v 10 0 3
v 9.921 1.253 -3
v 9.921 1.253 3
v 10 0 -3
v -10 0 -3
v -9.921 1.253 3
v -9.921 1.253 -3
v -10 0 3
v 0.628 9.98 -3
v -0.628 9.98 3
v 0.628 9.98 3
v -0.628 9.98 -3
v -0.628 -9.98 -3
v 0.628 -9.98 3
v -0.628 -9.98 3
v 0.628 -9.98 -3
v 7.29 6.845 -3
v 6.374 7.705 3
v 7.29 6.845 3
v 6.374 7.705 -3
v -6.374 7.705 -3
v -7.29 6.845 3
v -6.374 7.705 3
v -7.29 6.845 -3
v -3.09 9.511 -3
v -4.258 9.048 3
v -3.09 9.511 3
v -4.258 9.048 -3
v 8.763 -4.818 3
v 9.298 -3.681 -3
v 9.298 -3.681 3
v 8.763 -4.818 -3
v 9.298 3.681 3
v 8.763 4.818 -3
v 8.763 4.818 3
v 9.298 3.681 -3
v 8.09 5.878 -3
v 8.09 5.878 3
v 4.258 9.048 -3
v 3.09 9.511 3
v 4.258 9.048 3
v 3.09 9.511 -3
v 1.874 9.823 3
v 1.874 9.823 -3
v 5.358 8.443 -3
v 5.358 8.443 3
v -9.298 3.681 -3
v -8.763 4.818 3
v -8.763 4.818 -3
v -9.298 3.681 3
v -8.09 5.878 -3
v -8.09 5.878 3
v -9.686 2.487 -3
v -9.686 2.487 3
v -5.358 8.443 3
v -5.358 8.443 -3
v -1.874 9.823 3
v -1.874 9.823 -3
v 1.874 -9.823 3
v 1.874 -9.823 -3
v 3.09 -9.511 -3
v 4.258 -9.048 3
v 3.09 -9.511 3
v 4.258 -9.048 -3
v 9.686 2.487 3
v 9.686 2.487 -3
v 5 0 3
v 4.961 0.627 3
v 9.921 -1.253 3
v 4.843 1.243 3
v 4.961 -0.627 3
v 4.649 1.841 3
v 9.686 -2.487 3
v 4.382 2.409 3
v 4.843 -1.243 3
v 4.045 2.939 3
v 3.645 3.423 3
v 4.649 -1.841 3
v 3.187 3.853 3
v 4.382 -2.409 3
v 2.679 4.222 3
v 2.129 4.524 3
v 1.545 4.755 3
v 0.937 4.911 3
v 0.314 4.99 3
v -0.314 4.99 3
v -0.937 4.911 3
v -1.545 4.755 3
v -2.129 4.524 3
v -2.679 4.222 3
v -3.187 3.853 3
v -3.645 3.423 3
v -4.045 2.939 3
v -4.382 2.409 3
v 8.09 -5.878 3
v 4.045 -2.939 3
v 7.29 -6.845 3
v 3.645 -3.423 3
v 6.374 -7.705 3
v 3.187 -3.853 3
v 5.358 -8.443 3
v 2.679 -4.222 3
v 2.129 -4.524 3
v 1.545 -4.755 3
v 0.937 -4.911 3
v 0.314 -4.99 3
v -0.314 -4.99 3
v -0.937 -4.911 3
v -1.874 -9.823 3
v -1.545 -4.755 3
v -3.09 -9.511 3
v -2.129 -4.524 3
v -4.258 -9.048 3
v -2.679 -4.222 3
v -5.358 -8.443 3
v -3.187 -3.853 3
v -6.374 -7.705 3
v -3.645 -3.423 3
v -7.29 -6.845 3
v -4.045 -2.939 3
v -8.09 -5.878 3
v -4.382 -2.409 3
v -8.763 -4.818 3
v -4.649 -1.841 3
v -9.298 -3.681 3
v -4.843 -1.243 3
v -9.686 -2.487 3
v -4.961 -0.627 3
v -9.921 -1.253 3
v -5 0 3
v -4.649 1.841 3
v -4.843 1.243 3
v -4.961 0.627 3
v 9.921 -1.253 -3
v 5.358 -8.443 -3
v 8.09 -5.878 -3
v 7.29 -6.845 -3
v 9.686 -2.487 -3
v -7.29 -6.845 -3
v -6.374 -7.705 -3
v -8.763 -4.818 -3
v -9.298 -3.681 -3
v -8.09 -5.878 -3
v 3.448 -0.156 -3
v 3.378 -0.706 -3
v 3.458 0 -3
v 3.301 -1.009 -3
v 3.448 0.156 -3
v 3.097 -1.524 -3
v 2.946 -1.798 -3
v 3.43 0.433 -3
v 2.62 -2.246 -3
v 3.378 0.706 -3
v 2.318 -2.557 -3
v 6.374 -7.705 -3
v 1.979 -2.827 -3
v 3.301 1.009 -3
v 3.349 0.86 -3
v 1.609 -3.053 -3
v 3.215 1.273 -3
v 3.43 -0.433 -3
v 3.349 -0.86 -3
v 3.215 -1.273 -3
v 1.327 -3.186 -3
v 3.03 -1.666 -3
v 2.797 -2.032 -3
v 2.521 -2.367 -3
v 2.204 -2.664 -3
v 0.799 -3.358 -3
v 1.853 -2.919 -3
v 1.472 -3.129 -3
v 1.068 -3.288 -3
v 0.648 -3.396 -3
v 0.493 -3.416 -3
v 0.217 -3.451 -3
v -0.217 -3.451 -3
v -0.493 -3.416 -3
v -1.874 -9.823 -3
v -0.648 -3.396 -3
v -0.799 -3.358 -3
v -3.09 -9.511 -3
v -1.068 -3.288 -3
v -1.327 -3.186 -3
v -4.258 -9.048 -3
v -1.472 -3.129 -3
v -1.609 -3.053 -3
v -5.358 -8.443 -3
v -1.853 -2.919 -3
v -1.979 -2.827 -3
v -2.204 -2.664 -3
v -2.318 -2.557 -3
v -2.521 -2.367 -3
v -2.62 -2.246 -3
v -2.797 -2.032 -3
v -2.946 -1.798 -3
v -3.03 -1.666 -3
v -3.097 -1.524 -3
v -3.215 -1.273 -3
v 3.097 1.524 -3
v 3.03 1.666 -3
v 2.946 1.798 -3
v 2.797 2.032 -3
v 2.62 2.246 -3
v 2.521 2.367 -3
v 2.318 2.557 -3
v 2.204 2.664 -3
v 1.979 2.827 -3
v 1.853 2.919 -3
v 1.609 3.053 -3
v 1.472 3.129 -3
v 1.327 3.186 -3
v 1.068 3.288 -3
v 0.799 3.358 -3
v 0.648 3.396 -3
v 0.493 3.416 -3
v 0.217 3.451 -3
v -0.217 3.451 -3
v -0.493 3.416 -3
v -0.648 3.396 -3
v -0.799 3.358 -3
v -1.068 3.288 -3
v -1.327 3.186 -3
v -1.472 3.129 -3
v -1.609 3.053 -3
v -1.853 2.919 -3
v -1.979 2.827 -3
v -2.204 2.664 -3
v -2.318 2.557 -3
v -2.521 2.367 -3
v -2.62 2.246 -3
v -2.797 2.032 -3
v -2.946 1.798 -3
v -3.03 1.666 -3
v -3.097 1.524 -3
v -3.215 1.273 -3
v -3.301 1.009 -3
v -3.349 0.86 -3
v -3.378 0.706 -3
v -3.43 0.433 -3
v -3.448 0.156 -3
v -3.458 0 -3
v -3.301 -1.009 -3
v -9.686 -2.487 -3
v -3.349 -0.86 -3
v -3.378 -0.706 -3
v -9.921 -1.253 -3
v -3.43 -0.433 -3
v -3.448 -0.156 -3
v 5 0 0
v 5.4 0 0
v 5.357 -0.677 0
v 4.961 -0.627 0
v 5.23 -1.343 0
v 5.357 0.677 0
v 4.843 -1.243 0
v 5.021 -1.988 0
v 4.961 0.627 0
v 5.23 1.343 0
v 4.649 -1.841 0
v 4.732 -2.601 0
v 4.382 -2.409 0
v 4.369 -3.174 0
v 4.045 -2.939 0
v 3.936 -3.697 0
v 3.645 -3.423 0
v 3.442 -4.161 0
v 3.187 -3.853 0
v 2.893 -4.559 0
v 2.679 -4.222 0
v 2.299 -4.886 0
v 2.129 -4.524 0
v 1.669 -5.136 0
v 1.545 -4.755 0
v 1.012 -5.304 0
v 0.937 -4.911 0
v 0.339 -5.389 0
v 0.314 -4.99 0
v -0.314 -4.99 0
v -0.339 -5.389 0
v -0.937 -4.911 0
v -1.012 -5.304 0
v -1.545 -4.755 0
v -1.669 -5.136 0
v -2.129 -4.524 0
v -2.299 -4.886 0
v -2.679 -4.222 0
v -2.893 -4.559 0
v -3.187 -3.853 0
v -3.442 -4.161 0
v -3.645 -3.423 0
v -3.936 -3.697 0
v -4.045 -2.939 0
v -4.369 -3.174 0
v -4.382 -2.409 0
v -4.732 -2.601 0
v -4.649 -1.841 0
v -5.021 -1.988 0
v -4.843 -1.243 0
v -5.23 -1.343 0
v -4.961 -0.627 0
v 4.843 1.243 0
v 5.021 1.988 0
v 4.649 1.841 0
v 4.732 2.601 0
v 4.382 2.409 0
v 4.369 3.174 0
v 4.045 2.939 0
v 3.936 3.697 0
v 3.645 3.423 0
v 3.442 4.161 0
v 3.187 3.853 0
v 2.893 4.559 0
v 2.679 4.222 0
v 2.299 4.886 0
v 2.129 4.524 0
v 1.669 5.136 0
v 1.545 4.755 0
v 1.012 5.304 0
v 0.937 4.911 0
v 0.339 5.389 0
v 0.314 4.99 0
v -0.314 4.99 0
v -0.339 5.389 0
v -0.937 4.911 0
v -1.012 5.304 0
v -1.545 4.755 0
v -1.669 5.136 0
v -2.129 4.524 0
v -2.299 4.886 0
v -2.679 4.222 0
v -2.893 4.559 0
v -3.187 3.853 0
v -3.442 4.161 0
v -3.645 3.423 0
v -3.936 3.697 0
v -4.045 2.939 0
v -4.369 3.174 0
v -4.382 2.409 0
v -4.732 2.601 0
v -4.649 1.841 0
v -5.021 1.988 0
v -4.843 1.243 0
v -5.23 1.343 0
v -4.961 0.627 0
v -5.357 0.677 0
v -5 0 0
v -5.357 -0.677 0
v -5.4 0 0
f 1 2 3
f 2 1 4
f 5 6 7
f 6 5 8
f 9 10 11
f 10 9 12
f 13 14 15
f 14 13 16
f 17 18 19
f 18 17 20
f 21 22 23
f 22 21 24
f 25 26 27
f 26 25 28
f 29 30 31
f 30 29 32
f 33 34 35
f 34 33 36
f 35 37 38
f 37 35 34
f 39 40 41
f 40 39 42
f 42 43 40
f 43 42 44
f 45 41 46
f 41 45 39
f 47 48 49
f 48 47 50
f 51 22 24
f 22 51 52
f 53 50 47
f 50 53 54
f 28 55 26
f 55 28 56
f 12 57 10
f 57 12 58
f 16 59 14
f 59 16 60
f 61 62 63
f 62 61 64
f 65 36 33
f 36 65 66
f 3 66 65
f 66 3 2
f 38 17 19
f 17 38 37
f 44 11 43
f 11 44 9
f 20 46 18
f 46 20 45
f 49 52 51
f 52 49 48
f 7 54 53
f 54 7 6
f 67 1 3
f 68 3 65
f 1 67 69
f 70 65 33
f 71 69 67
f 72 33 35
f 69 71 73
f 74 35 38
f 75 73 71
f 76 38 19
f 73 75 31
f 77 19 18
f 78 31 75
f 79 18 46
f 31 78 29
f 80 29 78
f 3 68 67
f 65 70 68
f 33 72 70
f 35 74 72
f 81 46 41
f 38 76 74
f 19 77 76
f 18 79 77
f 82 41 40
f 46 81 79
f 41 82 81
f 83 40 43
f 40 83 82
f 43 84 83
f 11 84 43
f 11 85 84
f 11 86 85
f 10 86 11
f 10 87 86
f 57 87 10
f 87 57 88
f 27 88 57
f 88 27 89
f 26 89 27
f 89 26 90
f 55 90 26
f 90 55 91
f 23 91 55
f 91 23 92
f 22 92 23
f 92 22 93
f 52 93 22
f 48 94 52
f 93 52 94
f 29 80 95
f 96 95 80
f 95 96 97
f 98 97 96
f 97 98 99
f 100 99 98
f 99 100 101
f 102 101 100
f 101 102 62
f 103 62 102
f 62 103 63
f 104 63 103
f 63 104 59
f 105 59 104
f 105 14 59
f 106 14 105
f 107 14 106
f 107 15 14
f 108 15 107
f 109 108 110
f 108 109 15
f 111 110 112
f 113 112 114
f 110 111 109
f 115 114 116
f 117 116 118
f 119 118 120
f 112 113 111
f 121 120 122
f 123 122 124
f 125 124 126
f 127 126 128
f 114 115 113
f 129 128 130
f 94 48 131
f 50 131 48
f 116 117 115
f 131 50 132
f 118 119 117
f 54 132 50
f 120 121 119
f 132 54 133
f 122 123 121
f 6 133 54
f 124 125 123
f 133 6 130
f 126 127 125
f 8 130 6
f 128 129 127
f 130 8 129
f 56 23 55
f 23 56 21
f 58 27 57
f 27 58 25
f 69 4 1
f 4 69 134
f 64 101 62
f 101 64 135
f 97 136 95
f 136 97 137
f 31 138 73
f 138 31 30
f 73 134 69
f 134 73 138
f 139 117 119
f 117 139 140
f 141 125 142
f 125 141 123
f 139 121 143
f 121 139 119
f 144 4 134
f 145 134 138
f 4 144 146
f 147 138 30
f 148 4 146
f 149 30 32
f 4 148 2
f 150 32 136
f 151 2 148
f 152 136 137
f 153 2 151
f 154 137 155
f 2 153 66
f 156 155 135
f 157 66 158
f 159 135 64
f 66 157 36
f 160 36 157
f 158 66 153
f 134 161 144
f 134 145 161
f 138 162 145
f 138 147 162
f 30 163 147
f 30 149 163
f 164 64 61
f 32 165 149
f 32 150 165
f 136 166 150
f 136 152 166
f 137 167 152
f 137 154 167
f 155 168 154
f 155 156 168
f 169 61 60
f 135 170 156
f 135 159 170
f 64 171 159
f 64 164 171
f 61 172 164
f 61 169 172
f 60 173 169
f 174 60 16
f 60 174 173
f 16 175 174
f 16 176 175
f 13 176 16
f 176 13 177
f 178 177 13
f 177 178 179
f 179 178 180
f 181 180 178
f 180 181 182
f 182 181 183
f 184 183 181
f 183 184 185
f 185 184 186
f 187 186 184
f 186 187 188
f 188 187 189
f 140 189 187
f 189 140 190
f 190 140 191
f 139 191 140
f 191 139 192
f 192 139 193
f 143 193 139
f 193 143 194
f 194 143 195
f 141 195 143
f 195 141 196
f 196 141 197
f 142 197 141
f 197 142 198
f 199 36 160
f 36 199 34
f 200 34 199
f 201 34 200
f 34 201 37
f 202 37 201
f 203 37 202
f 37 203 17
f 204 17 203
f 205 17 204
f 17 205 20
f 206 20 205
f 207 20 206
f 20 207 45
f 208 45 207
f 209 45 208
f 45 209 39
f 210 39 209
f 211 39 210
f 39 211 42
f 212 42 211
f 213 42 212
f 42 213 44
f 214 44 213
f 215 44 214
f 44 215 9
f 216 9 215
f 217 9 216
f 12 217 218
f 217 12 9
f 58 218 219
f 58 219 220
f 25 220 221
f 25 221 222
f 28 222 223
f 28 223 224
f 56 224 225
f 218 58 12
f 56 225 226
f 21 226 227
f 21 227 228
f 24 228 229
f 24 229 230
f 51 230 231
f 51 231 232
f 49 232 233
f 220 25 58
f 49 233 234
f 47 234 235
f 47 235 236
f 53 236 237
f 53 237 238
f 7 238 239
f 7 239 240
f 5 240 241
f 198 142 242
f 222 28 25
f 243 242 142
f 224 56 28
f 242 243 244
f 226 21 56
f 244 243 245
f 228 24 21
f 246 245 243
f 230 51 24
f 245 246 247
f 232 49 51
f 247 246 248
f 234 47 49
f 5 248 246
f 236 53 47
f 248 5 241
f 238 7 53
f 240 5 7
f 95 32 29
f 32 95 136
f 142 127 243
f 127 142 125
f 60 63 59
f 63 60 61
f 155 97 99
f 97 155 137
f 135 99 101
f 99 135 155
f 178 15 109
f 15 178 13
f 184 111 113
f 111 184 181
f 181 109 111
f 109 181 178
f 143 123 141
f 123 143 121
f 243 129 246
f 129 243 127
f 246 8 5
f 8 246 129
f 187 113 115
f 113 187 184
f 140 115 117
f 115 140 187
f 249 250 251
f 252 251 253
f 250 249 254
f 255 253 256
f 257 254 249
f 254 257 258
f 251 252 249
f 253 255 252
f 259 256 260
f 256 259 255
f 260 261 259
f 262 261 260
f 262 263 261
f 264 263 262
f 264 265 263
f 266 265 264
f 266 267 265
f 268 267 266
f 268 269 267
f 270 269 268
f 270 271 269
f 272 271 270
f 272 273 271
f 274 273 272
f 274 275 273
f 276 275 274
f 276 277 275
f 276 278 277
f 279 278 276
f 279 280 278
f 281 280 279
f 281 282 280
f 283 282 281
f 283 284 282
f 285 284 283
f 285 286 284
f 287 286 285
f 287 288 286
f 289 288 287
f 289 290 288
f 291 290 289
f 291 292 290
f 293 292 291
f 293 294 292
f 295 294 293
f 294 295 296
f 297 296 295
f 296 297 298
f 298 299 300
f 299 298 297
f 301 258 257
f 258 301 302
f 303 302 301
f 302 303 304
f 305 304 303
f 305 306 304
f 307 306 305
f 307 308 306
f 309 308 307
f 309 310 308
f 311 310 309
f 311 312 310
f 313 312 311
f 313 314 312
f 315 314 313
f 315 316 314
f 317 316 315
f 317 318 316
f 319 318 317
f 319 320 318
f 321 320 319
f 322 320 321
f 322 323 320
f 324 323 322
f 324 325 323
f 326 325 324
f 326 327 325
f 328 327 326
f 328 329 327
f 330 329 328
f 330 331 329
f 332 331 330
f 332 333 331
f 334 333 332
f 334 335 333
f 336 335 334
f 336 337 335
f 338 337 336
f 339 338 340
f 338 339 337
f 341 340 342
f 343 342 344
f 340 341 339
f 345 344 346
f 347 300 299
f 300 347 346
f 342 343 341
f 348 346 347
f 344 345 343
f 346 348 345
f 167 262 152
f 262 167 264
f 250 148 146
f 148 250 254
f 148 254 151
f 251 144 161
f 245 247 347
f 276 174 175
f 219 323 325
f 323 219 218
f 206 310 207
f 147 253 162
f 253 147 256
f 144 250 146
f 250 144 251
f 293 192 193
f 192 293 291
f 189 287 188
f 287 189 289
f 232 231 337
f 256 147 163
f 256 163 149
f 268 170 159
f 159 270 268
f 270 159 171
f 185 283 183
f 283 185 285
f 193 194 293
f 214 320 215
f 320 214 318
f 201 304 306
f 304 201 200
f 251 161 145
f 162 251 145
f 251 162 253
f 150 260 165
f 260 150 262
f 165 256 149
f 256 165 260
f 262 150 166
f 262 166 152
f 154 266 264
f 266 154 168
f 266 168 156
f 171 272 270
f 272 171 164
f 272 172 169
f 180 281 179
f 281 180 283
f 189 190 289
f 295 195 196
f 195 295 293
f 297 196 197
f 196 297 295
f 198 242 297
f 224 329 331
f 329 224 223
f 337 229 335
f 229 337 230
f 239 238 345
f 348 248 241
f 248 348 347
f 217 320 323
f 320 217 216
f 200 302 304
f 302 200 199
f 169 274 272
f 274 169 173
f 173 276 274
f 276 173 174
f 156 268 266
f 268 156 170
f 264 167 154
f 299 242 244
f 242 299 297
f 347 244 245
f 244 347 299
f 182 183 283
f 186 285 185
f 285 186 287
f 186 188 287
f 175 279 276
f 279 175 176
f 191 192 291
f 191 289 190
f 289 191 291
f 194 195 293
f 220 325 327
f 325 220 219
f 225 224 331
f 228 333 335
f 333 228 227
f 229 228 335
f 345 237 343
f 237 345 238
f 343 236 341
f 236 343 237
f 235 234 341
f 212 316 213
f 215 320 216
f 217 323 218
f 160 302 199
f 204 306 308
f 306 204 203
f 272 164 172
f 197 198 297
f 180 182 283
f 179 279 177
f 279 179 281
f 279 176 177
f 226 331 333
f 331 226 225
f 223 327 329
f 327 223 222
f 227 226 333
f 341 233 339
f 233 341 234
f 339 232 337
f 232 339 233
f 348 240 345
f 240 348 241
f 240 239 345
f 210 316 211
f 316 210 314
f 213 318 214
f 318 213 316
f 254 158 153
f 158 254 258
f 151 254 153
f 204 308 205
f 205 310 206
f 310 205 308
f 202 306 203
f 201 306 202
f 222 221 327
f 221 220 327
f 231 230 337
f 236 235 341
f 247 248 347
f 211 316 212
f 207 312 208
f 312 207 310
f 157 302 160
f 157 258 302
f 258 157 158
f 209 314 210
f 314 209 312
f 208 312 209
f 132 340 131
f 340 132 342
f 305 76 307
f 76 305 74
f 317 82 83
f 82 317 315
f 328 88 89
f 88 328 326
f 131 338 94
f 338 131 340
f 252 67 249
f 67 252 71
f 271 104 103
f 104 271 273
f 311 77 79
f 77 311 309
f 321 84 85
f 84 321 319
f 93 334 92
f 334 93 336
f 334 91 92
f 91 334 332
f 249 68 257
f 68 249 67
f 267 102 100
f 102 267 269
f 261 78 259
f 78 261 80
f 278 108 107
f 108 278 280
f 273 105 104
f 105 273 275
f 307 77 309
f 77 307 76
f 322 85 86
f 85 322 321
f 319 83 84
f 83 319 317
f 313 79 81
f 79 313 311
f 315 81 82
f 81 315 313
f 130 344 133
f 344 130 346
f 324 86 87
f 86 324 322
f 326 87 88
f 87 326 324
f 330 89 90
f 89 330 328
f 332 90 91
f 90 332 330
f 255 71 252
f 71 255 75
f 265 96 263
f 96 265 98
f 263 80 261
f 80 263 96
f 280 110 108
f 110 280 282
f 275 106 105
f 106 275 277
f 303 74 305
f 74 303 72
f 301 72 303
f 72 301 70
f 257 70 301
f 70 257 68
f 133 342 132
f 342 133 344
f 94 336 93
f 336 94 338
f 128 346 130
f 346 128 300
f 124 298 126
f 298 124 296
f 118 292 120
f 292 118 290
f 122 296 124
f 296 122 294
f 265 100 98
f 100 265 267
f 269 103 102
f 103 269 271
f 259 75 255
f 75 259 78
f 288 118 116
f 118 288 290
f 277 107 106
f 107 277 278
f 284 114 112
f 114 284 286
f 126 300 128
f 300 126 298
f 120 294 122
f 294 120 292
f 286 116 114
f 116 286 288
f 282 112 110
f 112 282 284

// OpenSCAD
$fn = 50;


difference() {
	union() {
		translate(v = [0, 0, -3.0000000000]) {
			cylinder(h = 6, r = 10.0000000000);
		}
		#translate(v = [0, 0, -6.0000000000]) {
			cylinder(h = 6, r = 2.8750000000);
		}
	}
	union() {
		translate(v = [0, 0, 0]) {
			rotate(a = [0, 0, 0]) {
				difference() {
					union() {
						translate(v = [0, 0, -6.0000000000]) {
							cylinder(h = 6, r = 2.6000000000);
						}
						translate(v = [0, 0, -3.9000000000]) {
							cylinder(h = 3.9000000000, r1 = 2.8750000000, r2 = 5.4000000000);
						}
						translate(v = [0, 0, -6.0000000000]) {
							cylinder(h = 6, r = 2.8750000000);
						}
						translate(v = [0, 0, -6.0000000000]) {
							cylinder(h = 6, r = 2.6000000000);
						}
					}
					union();
				}
			}
		}
		#cylinder(h = 3, r = 5.0000000000);
	}
}
